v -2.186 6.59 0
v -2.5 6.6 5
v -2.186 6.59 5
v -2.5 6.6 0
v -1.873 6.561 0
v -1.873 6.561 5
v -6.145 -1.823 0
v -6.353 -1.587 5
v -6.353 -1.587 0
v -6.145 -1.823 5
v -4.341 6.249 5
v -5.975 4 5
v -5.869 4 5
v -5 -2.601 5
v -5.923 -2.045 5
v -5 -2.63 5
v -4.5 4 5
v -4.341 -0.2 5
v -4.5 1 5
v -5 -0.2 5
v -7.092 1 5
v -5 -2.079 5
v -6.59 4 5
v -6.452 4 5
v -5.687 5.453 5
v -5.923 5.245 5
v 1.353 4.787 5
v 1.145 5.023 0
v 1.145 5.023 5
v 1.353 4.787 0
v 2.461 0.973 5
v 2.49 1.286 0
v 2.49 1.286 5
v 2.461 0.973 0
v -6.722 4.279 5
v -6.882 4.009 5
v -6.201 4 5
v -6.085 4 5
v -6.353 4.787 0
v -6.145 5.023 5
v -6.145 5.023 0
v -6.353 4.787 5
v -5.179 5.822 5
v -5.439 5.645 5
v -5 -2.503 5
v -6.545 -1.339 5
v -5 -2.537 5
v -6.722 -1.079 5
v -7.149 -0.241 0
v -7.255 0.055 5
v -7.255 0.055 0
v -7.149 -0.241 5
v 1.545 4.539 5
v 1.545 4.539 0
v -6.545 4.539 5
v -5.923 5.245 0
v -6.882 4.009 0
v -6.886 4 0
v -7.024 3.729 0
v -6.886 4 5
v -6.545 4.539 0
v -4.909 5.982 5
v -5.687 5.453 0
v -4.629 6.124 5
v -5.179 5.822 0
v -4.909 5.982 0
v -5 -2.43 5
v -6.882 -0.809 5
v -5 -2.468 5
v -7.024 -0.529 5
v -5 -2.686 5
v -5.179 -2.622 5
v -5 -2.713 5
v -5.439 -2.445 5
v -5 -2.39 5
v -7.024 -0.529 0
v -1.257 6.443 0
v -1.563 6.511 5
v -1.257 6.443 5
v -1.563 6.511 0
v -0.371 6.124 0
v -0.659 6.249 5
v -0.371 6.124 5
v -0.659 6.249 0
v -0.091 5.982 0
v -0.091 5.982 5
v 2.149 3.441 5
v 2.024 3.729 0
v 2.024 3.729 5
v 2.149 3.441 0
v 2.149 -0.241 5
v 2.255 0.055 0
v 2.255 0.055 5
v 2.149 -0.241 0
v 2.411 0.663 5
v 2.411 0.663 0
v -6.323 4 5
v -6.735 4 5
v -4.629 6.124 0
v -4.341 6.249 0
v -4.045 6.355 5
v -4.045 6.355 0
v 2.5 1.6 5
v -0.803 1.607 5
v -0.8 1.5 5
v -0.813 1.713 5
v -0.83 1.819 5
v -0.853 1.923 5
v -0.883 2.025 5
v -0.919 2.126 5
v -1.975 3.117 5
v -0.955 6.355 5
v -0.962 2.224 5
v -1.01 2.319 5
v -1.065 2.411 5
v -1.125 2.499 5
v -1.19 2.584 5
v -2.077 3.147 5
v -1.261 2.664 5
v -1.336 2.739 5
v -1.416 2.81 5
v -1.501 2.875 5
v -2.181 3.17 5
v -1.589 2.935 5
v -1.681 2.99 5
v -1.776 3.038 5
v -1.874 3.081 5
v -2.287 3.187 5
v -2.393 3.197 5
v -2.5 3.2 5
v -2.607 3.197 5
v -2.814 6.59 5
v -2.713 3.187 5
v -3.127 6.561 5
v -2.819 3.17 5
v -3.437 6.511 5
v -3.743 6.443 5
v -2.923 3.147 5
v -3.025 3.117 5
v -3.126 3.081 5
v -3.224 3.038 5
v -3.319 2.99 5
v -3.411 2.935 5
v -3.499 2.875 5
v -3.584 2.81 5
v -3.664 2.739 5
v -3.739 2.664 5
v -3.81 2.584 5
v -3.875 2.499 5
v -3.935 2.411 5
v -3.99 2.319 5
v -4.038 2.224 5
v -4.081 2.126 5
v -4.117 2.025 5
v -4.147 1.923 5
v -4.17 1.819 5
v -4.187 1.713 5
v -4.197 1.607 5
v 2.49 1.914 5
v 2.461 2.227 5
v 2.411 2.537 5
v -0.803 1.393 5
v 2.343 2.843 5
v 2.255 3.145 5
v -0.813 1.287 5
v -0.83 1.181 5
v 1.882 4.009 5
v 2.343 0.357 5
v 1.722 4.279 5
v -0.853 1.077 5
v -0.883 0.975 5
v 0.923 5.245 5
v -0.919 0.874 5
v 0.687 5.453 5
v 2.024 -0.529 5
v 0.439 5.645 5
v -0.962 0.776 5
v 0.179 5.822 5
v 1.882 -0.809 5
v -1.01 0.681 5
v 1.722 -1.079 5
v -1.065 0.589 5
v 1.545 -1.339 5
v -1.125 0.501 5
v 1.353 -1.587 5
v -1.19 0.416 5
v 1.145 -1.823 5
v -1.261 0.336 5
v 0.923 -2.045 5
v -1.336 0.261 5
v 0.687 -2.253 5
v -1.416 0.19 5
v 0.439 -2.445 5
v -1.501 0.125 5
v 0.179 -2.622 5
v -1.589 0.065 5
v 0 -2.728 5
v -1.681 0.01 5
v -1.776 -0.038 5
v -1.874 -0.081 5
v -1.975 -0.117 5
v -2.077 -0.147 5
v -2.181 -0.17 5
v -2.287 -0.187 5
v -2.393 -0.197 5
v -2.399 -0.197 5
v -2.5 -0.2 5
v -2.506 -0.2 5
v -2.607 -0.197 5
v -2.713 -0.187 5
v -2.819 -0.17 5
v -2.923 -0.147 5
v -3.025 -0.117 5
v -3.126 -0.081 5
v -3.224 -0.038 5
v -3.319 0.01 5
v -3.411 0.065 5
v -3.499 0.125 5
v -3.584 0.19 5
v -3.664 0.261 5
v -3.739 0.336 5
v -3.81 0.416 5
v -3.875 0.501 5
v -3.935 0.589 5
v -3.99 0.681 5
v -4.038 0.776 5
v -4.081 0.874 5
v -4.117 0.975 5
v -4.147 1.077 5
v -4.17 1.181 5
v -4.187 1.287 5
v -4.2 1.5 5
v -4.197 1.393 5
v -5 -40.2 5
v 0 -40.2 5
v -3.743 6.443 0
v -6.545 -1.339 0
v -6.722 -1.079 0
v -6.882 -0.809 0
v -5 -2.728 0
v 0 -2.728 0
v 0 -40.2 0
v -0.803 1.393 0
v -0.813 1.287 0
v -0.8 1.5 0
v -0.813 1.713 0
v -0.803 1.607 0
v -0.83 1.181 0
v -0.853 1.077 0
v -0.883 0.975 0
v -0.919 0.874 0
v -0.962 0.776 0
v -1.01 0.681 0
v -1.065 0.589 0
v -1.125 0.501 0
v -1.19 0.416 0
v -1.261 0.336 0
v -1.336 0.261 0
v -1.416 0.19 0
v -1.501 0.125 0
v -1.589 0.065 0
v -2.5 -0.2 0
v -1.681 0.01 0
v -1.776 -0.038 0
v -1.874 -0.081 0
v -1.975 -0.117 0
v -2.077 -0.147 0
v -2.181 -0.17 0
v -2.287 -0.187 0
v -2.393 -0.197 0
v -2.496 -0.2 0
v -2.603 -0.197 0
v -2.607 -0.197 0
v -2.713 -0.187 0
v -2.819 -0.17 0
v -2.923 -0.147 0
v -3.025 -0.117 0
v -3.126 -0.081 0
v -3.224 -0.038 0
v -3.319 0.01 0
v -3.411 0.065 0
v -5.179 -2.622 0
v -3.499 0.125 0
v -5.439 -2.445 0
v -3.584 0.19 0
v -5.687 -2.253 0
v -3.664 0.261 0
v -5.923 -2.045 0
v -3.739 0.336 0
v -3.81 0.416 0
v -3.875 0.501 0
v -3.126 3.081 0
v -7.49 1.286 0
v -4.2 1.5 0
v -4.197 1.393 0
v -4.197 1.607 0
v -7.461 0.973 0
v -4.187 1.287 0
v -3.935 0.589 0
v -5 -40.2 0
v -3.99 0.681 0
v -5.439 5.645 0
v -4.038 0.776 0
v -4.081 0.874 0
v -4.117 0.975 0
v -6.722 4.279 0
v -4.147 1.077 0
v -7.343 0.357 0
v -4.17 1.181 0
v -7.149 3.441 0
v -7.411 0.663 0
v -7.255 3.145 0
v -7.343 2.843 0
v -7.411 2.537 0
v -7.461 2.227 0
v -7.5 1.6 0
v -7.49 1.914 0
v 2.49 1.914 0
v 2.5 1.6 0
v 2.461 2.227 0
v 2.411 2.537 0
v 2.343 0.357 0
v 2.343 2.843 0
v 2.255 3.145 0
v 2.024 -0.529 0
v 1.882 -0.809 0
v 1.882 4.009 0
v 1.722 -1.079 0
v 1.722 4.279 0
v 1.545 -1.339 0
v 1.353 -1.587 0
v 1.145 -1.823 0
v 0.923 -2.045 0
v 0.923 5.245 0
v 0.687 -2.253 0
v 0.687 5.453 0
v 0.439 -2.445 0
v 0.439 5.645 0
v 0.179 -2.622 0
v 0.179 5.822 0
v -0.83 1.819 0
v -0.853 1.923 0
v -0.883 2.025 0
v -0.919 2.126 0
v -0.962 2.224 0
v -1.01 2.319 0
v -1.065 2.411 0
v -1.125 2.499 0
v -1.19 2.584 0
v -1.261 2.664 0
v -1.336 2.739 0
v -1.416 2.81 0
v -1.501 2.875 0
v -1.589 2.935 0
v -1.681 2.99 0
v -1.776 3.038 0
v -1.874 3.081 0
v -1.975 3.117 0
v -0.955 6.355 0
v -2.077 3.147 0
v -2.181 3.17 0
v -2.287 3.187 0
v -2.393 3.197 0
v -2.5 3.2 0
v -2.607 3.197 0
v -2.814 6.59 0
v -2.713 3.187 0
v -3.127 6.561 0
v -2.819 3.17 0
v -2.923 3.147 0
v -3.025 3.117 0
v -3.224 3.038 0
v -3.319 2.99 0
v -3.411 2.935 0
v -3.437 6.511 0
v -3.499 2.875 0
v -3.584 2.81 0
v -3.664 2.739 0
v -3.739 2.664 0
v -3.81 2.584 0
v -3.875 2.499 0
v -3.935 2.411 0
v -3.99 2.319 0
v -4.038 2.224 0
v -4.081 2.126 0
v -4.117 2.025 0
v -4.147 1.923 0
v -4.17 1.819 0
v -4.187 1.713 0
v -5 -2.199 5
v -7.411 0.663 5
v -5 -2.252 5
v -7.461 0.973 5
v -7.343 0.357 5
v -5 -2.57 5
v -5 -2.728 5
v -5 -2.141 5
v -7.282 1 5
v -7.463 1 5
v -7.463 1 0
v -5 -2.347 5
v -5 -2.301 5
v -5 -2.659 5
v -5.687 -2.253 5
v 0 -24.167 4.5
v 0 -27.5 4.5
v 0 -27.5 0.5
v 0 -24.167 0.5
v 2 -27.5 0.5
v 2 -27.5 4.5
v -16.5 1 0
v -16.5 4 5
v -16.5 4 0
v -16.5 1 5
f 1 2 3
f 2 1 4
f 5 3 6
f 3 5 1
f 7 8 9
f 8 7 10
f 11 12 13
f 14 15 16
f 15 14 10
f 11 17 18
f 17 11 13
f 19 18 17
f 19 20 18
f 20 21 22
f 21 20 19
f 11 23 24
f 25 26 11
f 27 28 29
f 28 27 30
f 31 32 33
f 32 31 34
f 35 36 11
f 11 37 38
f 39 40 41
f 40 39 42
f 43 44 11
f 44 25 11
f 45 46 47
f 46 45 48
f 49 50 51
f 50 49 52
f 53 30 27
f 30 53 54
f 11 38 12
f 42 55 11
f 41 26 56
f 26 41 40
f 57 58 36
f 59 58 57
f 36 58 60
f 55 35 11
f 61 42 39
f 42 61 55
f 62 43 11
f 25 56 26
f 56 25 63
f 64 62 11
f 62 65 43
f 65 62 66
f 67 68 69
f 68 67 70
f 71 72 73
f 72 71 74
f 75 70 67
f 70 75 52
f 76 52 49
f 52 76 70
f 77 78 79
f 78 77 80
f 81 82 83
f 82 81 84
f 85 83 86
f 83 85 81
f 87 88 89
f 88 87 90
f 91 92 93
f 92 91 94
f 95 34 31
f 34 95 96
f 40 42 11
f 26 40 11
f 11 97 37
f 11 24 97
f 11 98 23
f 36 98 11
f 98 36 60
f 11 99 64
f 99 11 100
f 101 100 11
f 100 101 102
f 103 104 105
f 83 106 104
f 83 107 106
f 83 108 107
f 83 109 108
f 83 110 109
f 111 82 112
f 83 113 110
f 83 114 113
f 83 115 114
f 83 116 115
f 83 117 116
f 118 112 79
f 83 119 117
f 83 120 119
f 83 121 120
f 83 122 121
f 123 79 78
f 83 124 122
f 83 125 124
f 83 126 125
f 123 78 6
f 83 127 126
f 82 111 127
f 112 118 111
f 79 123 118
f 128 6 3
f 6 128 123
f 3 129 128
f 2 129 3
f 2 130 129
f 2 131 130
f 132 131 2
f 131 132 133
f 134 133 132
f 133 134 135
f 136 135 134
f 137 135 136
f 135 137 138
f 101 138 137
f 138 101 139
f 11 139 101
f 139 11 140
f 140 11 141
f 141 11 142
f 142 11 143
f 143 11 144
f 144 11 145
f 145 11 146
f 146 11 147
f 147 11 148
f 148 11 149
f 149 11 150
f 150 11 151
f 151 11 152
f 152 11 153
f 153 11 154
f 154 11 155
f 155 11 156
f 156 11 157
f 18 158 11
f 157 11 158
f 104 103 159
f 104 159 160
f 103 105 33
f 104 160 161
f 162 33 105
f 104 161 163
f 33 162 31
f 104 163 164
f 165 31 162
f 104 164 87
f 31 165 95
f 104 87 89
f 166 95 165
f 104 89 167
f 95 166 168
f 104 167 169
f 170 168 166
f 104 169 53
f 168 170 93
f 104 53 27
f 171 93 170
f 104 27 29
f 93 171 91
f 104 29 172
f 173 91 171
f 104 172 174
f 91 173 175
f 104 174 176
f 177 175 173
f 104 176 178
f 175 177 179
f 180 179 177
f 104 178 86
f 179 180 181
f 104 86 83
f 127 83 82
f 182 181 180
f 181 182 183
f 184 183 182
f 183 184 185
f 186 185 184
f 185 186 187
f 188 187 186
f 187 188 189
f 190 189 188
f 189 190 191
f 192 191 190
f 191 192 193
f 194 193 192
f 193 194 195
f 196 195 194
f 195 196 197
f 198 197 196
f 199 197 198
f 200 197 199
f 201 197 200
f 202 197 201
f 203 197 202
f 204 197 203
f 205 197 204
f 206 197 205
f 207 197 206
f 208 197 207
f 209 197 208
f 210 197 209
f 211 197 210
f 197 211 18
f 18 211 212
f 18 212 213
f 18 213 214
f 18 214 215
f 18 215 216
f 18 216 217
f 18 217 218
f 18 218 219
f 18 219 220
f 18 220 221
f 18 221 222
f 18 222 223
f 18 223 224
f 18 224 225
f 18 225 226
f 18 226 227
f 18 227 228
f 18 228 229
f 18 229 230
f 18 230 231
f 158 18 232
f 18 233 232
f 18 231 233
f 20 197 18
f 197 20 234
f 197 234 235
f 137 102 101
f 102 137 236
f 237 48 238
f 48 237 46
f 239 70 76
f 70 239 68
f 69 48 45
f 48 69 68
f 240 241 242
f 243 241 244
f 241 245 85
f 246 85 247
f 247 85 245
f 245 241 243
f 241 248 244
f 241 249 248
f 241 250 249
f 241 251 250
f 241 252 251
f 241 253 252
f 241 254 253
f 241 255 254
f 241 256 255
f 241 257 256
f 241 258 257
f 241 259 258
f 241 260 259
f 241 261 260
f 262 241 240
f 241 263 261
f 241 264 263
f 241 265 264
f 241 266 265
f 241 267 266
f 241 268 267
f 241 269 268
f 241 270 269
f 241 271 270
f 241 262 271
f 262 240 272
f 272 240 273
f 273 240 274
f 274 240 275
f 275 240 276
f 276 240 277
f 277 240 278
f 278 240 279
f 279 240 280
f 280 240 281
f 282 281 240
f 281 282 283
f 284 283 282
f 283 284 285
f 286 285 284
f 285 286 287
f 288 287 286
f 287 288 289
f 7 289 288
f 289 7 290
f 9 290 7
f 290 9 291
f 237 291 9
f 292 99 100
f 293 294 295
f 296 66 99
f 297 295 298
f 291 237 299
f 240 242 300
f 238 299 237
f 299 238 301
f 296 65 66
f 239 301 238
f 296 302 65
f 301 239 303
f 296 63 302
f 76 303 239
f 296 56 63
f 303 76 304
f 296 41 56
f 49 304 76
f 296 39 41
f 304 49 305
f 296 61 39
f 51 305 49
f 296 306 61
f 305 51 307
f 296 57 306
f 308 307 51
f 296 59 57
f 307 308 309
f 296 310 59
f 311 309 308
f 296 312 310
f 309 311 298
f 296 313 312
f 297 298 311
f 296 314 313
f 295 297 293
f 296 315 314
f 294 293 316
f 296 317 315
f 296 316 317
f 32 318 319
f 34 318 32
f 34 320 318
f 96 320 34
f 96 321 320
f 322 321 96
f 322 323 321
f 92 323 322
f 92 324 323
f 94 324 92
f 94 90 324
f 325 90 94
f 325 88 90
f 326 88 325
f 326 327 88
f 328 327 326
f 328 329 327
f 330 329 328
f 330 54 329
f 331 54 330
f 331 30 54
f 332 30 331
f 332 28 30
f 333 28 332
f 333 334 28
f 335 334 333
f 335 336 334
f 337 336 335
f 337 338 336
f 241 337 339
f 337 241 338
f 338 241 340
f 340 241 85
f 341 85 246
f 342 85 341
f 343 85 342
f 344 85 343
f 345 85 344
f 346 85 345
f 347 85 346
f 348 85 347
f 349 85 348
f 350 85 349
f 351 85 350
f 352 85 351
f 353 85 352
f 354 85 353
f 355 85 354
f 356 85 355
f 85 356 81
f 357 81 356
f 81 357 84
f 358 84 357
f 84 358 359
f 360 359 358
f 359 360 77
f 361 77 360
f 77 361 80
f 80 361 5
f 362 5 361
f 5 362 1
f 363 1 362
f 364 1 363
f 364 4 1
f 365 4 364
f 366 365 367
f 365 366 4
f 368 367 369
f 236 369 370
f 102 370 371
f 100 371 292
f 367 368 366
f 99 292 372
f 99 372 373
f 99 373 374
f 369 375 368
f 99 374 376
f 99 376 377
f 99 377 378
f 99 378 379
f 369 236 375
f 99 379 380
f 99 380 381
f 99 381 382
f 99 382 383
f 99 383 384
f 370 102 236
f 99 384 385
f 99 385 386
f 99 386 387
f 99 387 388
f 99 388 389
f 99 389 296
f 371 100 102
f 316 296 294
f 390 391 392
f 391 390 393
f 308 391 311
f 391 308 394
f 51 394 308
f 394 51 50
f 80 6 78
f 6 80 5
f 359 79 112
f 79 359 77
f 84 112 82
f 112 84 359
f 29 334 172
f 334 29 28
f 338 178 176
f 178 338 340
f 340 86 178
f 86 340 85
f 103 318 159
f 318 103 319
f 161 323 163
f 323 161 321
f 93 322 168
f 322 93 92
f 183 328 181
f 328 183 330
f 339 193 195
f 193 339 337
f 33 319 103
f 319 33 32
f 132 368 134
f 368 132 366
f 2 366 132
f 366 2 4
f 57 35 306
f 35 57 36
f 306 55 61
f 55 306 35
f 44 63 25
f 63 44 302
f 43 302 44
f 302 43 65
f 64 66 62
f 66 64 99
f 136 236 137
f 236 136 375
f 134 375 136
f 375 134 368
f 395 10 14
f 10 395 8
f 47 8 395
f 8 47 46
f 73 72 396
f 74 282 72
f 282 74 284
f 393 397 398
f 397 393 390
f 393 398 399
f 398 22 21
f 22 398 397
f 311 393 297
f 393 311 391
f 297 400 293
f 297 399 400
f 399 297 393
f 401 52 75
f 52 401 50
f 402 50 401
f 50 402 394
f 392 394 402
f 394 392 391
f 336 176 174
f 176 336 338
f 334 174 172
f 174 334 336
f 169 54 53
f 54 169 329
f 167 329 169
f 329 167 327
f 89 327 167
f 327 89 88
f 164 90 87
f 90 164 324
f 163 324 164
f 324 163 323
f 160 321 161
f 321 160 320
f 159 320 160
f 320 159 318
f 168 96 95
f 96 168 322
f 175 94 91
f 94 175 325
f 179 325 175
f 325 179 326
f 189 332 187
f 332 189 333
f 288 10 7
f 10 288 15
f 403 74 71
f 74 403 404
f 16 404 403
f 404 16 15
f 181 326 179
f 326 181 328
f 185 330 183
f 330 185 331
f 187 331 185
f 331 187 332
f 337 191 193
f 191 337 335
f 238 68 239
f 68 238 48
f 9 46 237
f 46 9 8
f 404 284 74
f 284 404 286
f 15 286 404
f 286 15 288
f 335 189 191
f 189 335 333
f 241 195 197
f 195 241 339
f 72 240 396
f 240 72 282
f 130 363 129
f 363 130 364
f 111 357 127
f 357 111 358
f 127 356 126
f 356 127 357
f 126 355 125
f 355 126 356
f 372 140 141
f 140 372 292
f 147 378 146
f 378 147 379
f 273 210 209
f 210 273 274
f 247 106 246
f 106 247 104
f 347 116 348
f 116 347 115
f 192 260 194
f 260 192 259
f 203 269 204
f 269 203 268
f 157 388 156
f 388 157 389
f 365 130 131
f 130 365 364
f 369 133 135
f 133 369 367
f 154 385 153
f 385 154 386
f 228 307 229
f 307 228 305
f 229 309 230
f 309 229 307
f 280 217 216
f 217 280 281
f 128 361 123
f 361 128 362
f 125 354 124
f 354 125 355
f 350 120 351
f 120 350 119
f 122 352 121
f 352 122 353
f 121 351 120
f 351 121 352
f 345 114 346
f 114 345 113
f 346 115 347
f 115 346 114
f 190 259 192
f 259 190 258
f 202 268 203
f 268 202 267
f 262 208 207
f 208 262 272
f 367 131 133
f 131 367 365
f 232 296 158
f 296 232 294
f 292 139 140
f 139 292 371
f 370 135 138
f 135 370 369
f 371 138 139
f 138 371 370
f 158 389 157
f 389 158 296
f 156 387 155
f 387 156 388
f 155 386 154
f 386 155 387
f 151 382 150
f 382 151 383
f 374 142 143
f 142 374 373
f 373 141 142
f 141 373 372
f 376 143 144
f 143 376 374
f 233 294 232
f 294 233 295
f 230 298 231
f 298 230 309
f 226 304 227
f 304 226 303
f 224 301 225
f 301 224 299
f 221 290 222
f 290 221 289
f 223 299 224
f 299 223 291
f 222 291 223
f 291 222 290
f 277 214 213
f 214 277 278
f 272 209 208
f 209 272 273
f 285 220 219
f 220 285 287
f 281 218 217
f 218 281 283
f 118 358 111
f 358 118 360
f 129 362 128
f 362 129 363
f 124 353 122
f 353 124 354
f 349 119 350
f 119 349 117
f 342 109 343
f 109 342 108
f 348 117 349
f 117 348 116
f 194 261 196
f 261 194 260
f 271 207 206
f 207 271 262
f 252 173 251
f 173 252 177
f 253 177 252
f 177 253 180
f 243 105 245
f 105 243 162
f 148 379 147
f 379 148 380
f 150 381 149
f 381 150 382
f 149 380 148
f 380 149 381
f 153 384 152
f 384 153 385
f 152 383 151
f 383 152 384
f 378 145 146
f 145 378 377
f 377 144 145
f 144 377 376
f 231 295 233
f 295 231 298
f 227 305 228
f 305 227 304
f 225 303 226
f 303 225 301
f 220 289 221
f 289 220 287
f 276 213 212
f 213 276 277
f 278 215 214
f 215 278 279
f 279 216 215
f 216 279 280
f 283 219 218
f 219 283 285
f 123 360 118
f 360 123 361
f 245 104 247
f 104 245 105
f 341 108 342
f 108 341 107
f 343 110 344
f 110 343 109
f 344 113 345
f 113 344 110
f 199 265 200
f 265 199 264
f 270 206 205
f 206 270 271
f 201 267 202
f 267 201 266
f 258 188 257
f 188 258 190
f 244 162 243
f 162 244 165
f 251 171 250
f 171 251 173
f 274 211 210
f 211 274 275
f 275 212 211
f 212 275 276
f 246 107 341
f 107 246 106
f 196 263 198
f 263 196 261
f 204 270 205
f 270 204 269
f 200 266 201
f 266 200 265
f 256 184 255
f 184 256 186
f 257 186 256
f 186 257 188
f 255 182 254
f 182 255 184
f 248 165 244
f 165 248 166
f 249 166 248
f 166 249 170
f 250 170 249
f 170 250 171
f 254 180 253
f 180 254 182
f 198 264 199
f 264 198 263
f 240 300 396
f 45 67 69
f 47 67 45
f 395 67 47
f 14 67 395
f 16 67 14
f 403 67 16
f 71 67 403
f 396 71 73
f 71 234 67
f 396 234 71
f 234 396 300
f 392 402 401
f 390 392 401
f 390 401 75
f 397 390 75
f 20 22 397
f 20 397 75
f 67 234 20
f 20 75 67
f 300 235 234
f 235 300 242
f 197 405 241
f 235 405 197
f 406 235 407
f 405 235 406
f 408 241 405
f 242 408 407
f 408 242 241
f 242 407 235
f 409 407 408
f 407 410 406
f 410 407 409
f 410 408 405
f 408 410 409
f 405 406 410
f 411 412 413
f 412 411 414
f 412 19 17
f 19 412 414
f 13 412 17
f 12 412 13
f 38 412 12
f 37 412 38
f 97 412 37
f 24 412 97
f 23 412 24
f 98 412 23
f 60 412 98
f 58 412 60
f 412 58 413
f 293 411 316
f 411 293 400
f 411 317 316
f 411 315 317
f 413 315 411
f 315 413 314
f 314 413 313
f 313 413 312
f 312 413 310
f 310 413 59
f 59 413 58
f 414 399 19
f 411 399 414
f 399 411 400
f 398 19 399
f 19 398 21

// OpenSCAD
$fn=100;

translate([-1,-27.5,2.5]){
    rotate(a=[0,0,0])
    linear_extrude(height = 4, center = true, convexity = 10, twist = 0)
    polygon(points=[[0,0],[3,0],[0,5]], paths=[[0,1,2]]);
}

rotate([90,0,0]) union(){
    translate([-5,0,0.2]) cube([5,5,40]);
    difference(){
        translate([-2.5,5,-1.6]) rotate([90,90,0]) cylinder(5,5,5);
        translate([-2.5,5.3,-1.5]) rotate([90,90,0]) cylinder(5.5,1.7,1.7);
    }
}
translate([-16.5,1,0])  cube([12,3,5]);
